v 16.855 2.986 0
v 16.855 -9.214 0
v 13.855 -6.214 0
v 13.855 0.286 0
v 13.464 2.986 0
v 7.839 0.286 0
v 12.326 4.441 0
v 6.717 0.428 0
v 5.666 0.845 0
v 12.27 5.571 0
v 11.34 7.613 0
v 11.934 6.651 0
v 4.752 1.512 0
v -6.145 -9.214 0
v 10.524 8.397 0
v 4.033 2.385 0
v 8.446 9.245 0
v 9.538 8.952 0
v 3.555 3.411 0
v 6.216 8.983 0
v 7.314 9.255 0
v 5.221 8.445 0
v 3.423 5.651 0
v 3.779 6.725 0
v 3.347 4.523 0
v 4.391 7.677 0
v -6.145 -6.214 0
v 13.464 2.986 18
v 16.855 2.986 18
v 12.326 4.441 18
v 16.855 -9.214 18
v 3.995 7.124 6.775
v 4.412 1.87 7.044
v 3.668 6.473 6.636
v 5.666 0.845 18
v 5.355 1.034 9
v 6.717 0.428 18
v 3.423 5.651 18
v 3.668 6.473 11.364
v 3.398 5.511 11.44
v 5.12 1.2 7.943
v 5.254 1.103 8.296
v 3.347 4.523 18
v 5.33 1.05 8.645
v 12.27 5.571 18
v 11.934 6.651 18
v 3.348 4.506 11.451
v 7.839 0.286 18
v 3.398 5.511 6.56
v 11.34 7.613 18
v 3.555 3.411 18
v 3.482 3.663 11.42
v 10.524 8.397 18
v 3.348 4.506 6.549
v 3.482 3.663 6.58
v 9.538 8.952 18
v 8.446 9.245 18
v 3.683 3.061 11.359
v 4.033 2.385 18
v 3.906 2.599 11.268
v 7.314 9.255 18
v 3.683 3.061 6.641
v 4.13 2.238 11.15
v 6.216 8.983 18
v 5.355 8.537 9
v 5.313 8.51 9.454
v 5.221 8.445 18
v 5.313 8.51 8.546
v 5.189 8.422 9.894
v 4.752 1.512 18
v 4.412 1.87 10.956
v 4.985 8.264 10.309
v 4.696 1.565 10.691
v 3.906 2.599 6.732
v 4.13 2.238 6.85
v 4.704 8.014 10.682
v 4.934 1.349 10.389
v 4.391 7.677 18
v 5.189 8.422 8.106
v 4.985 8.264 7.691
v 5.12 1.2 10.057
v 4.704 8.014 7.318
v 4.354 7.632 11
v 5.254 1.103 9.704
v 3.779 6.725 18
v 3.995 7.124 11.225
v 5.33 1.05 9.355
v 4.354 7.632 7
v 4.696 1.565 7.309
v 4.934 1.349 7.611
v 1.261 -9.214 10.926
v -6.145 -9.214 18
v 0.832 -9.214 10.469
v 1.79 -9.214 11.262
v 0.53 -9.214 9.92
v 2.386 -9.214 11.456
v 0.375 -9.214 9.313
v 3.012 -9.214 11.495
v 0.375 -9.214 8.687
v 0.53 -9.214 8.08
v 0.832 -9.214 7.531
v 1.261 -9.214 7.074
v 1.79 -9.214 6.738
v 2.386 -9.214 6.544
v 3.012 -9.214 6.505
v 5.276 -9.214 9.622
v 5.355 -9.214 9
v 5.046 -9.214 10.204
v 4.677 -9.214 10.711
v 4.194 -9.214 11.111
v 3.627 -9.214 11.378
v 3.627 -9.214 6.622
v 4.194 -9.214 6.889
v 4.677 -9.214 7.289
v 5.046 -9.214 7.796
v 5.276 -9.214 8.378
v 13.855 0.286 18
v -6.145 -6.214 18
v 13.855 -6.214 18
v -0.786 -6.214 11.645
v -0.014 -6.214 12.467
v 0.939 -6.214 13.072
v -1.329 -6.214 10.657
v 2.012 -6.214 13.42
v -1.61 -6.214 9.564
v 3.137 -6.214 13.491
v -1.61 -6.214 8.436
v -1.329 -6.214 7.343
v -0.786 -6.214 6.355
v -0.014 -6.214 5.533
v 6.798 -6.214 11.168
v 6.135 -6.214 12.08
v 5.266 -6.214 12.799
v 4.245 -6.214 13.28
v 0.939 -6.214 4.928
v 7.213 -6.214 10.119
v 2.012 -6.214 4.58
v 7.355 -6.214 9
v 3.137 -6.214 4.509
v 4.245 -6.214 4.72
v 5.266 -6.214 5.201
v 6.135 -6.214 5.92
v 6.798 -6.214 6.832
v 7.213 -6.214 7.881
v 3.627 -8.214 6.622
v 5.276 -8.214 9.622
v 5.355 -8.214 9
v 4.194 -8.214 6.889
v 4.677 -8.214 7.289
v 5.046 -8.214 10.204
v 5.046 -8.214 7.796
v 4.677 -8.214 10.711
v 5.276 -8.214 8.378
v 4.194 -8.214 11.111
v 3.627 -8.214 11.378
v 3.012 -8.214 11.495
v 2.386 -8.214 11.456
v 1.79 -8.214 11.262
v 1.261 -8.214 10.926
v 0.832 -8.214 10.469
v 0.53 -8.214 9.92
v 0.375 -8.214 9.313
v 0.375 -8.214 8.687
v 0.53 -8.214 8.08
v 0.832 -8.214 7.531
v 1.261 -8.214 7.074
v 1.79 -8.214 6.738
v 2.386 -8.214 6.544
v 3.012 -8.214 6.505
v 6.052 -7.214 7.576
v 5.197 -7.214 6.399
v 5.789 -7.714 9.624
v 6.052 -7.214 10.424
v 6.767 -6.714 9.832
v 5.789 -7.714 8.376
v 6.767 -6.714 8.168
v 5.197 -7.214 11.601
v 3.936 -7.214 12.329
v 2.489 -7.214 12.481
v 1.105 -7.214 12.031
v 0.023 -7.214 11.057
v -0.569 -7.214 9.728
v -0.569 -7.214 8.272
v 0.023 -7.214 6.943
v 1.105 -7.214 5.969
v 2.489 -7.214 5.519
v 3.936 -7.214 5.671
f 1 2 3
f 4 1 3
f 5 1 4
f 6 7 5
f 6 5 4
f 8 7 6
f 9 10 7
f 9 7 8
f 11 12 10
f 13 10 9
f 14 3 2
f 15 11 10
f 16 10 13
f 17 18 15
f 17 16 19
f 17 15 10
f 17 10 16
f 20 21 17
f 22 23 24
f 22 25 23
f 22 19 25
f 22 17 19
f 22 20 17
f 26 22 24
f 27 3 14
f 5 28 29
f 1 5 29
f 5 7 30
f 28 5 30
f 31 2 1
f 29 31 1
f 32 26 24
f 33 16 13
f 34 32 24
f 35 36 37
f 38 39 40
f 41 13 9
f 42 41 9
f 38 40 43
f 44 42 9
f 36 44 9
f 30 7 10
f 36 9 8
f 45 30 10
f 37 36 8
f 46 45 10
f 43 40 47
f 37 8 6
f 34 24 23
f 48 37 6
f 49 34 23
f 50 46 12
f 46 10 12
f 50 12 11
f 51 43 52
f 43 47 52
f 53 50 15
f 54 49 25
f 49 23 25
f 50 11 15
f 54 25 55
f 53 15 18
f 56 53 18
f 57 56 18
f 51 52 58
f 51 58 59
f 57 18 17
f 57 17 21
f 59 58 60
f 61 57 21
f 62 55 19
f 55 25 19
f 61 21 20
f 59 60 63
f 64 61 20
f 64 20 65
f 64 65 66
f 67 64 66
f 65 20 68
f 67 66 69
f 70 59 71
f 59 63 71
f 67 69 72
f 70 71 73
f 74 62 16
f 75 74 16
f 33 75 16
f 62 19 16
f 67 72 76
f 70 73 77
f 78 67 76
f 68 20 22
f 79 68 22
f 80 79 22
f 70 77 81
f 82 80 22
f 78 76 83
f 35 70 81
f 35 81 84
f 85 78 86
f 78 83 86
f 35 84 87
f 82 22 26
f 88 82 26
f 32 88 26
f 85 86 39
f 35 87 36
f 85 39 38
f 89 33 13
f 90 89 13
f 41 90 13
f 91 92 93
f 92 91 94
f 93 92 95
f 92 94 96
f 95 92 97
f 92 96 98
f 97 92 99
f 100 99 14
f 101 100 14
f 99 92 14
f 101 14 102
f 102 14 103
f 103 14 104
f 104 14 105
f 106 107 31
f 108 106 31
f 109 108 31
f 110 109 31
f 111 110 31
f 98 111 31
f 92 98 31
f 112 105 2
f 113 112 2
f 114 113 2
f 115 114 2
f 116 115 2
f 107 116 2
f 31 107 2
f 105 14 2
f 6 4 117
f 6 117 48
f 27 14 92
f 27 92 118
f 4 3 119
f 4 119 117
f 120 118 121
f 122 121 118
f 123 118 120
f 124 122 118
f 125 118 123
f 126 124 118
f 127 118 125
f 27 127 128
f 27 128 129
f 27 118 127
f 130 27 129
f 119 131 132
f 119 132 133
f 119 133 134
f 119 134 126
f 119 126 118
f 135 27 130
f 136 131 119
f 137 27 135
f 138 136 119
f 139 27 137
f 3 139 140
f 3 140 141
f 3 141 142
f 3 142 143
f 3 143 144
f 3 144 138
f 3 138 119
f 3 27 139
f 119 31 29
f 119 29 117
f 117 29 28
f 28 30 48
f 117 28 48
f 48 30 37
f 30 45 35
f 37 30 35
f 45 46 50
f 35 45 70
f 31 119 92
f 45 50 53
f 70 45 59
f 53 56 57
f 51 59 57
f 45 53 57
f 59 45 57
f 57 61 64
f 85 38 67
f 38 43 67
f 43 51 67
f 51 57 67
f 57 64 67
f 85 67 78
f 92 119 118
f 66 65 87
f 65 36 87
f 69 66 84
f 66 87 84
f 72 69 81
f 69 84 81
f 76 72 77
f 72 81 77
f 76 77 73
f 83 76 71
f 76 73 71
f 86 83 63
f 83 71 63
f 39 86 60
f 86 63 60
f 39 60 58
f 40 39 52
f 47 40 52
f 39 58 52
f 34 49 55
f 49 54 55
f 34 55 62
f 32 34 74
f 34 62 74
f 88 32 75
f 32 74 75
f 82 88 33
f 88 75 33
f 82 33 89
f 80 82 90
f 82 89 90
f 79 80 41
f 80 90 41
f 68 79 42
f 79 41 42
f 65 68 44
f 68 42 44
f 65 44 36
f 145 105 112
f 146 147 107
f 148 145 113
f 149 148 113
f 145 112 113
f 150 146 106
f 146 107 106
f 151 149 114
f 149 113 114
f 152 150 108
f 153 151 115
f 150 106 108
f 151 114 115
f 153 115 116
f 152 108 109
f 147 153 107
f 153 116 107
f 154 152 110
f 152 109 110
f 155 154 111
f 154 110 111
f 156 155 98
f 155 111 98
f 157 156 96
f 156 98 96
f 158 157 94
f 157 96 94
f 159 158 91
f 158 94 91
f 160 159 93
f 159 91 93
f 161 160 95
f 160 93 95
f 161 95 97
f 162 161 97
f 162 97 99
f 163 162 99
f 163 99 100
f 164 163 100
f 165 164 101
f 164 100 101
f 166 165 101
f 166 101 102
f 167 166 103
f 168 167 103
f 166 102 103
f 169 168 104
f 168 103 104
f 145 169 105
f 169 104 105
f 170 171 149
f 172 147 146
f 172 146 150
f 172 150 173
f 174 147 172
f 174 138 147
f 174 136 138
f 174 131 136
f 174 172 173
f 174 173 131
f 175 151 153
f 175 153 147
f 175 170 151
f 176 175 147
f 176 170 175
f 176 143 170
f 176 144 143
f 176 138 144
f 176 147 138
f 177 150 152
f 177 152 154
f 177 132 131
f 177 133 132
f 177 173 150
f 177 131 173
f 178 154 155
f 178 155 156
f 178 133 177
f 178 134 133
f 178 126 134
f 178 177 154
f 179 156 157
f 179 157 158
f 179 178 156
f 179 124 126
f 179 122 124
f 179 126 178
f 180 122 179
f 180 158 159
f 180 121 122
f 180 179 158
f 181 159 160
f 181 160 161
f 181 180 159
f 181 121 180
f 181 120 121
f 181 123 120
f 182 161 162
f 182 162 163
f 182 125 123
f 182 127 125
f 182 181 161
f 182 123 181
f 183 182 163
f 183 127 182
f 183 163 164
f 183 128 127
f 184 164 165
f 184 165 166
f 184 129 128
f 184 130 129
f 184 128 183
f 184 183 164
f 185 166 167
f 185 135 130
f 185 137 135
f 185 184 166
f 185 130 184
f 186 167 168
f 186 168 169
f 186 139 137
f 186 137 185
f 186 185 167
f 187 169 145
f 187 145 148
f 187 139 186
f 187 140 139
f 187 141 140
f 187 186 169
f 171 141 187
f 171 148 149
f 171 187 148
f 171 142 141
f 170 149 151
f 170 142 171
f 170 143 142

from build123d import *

# Parameters (mm, degrees)
PAD_DEPTH       = 18
SKETCH001_R     = 2.5
POCKET_DEPTH    = 18.501
CHAMFER_SIZE    = 2
CHAMFER001_SIZE = 1.5


with BuildPart() as part:
    # Sketch → Pad (new body)
    with BuildSketch(Plane.XY):
        with BuildLine():
            Line((-6.145128, -9.214477), (16.854872, -9.214477))
            Line((16.854872, -9.214477), (16.854872, 2.985523))
            Line((11.963718, 2.985523), (16.854872, 2.985523))
            ThreePointArc((11.963718, 2.985523), (5.37466, 8.550501), (7.839372, 0.285523))
            Line((13.854872, 0.285523), (7.839372, 0.285523))
            Line((13.854872, -6.214477), (13.854872, 0.285523))
            Line((-6.145128, -6.214477), (13.854872, -6.214477))
            Line((-6.145128, -9.214477), (-6.145128, -6.214477))
        make_face()
    extrude(amount=PAD_DEPTH)

    # Sketch001 → Pocket (cut, through all)
    with BuildSketch(Plane.XZ.offset(9.214477)):
        with Locations((2.854872, 9)):
            Circle(SKETCH001_R)
    extrude(amount=-POCKET_DEPTH, mode=Mode.SUBTRACT)

    # Chamfer
    chamfer_edges = [part.edges().sort_by_distance(p)[0] for p in [
        (0.354872, -6.214477, 9),
    ]]
    chamfer(chamfer_edges, length=CHAMFER_SIZE)

    # Chamfer001
    chamfer001_edges = [part.edges().sort_by_distance(p)[0] for p in [
        (11.963718, 2.985523, 9),
    ]]
    chamfer(chamfer001_edges, length=CHAMFER001_SIZE)


solid = part.part
